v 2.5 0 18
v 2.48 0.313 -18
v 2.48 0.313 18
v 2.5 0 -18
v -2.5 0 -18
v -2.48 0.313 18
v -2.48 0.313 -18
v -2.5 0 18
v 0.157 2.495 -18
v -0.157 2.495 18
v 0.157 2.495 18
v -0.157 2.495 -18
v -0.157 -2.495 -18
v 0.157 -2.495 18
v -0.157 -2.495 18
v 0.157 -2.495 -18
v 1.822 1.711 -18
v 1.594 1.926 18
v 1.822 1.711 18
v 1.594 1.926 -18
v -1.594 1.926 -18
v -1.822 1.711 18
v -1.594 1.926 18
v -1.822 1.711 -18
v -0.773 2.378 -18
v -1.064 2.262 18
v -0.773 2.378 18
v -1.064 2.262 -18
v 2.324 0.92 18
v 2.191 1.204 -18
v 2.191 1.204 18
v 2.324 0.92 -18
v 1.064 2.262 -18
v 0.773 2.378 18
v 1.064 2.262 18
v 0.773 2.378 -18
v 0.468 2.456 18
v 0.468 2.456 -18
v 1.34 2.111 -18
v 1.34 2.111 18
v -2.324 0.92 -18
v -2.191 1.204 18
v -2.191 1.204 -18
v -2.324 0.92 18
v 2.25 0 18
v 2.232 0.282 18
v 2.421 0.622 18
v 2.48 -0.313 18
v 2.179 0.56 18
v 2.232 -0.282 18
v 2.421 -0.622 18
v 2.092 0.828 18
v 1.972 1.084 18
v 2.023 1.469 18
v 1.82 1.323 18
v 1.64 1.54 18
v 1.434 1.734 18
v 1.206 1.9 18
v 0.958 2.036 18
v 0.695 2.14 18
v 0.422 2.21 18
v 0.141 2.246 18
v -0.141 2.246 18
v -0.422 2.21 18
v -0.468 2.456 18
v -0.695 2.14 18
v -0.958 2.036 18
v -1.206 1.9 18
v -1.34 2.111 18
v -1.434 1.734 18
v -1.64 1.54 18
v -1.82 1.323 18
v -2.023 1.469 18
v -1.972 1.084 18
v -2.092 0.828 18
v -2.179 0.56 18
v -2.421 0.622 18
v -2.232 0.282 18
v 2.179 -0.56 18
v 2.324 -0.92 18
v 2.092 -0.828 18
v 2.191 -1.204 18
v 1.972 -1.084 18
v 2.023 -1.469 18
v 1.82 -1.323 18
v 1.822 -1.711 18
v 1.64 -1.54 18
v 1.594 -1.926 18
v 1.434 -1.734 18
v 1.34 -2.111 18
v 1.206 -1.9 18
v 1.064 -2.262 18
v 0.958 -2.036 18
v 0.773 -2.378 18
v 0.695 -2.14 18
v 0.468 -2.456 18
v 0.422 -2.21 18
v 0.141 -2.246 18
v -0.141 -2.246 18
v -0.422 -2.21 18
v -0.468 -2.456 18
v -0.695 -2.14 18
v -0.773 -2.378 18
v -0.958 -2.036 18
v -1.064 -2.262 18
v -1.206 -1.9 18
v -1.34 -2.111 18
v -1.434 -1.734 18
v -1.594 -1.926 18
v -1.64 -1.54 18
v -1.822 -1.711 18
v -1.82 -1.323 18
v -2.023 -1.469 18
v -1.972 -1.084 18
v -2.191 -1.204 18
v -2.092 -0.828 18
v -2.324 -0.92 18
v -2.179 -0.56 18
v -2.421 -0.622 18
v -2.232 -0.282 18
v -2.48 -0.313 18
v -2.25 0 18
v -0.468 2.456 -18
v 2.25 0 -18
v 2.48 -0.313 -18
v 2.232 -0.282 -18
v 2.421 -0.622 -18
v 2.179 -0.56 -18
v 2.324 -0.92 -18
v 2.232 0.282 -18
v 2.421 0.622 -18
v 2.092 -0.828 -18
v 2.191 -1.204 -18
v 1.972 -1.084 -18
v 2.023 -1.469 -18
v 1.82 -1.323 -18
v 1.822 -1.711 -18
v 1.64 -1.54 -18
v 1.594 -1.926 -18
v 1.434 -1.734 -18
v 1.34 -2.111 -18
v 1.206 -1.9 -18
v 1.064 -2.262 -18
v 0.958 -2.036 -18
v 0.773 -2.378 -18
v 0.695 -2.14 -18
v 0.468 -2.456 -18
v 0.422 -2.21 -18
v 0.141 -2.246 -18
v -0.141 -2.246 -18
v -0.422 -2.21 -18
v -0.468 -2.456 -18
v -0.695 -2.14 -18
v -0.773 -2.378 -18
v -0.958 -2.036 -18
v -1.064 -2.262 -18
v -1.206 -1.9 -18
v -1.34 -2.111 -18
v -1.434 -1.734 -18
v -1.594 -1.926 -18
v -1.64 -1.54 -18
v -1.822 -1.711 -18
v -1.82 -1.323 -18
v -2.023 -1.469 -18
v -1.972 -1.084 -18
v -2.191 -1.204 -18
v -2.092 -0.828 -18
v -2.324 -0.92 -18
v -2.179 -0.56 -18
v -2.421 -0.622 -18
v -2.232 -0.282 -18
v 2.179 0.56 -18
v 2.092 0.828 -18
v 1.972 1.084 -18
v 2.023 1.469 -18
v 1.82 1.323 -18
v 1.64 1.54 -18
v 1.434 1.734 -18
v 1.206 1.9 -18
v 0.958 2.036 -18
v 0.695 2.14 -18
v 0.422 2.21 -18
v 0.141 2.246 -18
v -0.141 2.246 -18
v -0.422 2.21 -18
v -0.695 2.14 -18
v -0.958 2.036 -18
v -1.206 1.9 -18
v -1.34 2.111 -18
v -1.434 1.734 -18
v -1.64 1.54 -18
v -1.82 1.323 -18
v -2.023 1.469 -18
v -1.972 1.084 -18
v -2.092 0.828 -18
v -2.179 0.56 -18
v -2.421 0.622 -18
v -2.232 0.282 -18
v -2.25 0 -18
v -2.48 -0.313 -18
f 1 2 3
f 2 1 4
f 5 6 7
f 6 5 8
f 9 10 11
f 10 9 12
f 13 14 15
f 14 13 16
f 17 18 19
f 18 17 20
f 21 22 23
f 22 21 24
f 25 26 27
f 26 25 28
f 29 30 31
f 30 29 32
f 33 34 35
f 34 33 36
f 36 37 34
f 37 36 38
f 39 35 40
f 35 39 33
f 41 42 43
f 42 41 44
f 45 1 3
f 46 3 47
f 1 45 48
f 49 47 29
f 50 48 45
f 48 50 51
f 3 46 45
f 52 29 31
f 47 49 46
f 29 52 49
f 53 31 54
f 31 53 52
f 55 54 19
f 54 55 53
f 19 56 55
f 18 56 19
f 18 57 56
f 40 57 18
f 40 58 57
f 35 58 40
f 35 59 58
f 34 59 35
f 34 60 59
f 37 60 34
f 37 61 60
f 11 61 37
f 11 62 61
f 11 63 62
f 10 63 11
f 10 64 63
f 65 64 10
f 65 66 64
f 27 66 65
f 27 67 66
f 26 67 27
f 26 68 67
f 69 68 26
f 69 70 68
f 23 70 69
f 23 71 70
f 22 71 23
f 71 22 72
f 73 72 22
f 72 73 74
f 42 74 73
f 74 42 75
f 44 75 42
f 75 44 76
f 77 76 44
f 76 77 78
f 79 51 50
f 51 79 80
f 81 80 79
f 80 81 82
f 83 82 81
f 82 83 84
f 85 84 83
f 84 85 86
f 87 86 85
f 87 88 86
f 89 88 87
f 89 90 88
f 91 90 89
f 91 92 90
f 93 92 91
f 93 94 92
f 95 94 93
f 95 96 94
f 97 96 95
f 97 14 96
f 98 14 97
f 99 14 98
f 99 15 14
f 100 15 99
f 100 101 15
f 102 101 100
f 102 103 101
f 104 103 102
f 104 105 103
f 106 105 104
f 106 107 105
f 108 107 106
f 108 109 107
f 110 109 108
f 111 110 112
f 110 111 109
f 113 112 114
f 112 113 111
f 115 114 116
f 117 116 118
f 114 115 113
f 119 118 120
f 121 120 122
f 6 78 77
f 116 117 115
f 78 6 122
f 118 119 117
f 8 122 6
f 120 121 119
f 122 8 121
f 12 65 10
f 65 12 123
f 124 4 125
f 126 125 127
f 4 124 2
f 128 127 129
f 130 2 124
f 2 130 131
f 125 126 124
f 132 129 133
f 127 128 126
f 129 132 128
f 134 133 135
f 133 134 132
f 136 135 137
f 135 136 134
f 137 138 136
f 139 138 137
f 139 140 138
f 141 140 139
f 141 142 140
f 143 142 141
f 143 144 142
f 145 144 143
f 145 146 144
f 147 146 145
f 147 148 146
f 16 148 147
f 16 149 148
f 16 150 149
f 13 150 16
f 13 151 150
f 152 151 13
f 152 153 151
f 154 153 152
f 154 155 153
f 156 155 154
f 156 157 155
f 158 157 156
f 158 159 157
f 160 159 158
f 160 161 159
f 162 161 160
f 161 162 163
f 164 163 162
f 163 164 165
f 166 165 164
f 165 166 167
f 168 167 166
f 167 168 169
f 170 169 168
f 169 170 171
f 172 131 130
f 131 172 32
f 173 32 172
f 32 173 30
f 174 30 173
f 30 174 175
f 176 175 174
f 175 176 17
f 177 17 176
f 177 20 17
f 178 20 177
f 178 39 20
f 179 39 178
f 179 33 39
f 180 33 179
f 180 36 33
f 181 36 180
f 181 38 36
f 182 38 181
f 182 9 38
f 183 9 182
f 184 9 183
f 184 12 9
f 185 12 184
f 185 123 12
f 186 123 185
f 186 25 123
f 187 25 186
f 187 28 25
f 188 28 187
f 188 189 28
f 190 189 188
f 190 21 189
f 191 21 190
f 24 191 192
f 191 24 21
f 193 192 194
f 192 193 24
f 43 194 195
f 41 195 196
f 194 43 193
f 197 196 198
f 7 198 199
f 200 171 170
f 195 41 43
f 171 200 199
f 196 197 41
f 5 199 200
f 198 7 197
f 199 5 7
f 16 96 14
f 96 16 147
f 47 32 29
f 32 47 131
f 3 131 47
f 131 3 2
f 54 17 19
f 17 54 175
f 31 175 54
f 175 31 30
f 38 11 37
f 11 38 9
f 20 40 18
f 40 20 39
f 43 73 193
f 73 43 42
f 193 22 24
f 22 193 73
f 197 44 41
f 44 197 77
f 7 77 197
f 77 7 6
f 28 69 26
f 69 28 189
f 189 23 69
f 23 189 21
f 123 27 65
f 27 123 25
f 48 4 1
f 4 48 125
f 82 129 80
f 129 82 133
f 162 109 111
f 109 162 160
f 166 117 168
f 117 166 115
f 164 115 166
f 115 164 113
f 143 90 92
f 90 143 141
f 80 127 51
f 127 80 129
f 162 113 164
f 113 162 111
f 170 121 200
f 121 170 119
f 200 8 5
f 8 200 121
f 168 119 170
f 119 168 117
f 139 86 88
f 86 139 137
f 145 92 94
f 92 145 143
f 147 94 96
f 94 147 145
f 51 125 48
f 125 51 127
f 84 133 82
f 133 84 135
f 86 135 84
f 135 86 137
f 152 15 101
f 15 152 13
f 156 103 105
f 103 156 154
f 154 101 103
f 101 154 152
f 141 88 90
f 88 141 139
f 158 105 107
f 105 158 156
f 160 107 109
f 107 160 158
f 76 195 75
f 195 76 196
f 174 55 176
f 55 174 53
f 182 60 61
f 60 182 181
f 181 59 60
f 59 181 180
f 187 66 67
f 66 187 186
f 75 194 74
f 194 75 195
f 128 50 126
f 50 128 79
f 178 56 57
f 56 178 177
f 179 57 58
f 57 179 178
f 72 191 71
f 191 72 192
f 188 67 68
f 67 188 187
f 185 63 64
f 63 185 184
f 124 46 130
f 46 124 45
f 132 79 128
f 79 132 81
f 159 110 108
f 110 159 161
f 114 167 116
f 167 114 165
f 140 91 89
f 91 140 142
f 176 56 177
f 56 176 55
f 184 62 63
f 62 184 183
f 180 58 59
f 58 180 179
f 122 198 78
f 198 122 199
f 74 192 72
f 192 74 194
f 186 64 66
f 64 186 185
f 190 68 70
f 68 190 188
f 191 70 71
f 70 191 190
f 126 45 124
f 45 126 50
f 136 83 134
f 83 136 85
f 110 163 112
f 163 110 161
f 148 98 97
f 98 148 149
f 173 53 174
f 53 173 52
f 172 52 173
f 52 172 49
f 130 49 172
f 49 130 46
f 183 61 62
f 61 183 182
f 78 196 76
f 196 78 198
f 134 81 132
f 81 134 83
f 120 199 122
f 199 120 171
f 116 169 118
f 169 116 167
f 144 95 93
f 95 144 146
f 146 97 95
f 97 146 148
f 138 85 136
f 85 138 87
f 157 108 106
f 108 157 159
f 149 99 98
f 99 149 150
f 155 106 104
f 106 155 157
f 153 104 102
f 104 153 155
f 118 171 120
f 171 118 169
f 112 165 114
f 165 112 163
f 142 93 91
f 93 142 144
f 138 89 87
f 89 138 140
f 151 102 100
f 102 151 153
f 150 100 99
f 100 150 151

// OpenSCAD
$fn = 50;


difference() {
	union() {
		translate(v = [0, 0, -18.0000000000]) {
			cylinder(h = 36, r = 2.5000000000);
		}
	}
	union() {
		translate(v = [0, 0, -100.0000000000]) {
			cylinder(h = 200, r = 2.2500000000);
		}
	}
}
